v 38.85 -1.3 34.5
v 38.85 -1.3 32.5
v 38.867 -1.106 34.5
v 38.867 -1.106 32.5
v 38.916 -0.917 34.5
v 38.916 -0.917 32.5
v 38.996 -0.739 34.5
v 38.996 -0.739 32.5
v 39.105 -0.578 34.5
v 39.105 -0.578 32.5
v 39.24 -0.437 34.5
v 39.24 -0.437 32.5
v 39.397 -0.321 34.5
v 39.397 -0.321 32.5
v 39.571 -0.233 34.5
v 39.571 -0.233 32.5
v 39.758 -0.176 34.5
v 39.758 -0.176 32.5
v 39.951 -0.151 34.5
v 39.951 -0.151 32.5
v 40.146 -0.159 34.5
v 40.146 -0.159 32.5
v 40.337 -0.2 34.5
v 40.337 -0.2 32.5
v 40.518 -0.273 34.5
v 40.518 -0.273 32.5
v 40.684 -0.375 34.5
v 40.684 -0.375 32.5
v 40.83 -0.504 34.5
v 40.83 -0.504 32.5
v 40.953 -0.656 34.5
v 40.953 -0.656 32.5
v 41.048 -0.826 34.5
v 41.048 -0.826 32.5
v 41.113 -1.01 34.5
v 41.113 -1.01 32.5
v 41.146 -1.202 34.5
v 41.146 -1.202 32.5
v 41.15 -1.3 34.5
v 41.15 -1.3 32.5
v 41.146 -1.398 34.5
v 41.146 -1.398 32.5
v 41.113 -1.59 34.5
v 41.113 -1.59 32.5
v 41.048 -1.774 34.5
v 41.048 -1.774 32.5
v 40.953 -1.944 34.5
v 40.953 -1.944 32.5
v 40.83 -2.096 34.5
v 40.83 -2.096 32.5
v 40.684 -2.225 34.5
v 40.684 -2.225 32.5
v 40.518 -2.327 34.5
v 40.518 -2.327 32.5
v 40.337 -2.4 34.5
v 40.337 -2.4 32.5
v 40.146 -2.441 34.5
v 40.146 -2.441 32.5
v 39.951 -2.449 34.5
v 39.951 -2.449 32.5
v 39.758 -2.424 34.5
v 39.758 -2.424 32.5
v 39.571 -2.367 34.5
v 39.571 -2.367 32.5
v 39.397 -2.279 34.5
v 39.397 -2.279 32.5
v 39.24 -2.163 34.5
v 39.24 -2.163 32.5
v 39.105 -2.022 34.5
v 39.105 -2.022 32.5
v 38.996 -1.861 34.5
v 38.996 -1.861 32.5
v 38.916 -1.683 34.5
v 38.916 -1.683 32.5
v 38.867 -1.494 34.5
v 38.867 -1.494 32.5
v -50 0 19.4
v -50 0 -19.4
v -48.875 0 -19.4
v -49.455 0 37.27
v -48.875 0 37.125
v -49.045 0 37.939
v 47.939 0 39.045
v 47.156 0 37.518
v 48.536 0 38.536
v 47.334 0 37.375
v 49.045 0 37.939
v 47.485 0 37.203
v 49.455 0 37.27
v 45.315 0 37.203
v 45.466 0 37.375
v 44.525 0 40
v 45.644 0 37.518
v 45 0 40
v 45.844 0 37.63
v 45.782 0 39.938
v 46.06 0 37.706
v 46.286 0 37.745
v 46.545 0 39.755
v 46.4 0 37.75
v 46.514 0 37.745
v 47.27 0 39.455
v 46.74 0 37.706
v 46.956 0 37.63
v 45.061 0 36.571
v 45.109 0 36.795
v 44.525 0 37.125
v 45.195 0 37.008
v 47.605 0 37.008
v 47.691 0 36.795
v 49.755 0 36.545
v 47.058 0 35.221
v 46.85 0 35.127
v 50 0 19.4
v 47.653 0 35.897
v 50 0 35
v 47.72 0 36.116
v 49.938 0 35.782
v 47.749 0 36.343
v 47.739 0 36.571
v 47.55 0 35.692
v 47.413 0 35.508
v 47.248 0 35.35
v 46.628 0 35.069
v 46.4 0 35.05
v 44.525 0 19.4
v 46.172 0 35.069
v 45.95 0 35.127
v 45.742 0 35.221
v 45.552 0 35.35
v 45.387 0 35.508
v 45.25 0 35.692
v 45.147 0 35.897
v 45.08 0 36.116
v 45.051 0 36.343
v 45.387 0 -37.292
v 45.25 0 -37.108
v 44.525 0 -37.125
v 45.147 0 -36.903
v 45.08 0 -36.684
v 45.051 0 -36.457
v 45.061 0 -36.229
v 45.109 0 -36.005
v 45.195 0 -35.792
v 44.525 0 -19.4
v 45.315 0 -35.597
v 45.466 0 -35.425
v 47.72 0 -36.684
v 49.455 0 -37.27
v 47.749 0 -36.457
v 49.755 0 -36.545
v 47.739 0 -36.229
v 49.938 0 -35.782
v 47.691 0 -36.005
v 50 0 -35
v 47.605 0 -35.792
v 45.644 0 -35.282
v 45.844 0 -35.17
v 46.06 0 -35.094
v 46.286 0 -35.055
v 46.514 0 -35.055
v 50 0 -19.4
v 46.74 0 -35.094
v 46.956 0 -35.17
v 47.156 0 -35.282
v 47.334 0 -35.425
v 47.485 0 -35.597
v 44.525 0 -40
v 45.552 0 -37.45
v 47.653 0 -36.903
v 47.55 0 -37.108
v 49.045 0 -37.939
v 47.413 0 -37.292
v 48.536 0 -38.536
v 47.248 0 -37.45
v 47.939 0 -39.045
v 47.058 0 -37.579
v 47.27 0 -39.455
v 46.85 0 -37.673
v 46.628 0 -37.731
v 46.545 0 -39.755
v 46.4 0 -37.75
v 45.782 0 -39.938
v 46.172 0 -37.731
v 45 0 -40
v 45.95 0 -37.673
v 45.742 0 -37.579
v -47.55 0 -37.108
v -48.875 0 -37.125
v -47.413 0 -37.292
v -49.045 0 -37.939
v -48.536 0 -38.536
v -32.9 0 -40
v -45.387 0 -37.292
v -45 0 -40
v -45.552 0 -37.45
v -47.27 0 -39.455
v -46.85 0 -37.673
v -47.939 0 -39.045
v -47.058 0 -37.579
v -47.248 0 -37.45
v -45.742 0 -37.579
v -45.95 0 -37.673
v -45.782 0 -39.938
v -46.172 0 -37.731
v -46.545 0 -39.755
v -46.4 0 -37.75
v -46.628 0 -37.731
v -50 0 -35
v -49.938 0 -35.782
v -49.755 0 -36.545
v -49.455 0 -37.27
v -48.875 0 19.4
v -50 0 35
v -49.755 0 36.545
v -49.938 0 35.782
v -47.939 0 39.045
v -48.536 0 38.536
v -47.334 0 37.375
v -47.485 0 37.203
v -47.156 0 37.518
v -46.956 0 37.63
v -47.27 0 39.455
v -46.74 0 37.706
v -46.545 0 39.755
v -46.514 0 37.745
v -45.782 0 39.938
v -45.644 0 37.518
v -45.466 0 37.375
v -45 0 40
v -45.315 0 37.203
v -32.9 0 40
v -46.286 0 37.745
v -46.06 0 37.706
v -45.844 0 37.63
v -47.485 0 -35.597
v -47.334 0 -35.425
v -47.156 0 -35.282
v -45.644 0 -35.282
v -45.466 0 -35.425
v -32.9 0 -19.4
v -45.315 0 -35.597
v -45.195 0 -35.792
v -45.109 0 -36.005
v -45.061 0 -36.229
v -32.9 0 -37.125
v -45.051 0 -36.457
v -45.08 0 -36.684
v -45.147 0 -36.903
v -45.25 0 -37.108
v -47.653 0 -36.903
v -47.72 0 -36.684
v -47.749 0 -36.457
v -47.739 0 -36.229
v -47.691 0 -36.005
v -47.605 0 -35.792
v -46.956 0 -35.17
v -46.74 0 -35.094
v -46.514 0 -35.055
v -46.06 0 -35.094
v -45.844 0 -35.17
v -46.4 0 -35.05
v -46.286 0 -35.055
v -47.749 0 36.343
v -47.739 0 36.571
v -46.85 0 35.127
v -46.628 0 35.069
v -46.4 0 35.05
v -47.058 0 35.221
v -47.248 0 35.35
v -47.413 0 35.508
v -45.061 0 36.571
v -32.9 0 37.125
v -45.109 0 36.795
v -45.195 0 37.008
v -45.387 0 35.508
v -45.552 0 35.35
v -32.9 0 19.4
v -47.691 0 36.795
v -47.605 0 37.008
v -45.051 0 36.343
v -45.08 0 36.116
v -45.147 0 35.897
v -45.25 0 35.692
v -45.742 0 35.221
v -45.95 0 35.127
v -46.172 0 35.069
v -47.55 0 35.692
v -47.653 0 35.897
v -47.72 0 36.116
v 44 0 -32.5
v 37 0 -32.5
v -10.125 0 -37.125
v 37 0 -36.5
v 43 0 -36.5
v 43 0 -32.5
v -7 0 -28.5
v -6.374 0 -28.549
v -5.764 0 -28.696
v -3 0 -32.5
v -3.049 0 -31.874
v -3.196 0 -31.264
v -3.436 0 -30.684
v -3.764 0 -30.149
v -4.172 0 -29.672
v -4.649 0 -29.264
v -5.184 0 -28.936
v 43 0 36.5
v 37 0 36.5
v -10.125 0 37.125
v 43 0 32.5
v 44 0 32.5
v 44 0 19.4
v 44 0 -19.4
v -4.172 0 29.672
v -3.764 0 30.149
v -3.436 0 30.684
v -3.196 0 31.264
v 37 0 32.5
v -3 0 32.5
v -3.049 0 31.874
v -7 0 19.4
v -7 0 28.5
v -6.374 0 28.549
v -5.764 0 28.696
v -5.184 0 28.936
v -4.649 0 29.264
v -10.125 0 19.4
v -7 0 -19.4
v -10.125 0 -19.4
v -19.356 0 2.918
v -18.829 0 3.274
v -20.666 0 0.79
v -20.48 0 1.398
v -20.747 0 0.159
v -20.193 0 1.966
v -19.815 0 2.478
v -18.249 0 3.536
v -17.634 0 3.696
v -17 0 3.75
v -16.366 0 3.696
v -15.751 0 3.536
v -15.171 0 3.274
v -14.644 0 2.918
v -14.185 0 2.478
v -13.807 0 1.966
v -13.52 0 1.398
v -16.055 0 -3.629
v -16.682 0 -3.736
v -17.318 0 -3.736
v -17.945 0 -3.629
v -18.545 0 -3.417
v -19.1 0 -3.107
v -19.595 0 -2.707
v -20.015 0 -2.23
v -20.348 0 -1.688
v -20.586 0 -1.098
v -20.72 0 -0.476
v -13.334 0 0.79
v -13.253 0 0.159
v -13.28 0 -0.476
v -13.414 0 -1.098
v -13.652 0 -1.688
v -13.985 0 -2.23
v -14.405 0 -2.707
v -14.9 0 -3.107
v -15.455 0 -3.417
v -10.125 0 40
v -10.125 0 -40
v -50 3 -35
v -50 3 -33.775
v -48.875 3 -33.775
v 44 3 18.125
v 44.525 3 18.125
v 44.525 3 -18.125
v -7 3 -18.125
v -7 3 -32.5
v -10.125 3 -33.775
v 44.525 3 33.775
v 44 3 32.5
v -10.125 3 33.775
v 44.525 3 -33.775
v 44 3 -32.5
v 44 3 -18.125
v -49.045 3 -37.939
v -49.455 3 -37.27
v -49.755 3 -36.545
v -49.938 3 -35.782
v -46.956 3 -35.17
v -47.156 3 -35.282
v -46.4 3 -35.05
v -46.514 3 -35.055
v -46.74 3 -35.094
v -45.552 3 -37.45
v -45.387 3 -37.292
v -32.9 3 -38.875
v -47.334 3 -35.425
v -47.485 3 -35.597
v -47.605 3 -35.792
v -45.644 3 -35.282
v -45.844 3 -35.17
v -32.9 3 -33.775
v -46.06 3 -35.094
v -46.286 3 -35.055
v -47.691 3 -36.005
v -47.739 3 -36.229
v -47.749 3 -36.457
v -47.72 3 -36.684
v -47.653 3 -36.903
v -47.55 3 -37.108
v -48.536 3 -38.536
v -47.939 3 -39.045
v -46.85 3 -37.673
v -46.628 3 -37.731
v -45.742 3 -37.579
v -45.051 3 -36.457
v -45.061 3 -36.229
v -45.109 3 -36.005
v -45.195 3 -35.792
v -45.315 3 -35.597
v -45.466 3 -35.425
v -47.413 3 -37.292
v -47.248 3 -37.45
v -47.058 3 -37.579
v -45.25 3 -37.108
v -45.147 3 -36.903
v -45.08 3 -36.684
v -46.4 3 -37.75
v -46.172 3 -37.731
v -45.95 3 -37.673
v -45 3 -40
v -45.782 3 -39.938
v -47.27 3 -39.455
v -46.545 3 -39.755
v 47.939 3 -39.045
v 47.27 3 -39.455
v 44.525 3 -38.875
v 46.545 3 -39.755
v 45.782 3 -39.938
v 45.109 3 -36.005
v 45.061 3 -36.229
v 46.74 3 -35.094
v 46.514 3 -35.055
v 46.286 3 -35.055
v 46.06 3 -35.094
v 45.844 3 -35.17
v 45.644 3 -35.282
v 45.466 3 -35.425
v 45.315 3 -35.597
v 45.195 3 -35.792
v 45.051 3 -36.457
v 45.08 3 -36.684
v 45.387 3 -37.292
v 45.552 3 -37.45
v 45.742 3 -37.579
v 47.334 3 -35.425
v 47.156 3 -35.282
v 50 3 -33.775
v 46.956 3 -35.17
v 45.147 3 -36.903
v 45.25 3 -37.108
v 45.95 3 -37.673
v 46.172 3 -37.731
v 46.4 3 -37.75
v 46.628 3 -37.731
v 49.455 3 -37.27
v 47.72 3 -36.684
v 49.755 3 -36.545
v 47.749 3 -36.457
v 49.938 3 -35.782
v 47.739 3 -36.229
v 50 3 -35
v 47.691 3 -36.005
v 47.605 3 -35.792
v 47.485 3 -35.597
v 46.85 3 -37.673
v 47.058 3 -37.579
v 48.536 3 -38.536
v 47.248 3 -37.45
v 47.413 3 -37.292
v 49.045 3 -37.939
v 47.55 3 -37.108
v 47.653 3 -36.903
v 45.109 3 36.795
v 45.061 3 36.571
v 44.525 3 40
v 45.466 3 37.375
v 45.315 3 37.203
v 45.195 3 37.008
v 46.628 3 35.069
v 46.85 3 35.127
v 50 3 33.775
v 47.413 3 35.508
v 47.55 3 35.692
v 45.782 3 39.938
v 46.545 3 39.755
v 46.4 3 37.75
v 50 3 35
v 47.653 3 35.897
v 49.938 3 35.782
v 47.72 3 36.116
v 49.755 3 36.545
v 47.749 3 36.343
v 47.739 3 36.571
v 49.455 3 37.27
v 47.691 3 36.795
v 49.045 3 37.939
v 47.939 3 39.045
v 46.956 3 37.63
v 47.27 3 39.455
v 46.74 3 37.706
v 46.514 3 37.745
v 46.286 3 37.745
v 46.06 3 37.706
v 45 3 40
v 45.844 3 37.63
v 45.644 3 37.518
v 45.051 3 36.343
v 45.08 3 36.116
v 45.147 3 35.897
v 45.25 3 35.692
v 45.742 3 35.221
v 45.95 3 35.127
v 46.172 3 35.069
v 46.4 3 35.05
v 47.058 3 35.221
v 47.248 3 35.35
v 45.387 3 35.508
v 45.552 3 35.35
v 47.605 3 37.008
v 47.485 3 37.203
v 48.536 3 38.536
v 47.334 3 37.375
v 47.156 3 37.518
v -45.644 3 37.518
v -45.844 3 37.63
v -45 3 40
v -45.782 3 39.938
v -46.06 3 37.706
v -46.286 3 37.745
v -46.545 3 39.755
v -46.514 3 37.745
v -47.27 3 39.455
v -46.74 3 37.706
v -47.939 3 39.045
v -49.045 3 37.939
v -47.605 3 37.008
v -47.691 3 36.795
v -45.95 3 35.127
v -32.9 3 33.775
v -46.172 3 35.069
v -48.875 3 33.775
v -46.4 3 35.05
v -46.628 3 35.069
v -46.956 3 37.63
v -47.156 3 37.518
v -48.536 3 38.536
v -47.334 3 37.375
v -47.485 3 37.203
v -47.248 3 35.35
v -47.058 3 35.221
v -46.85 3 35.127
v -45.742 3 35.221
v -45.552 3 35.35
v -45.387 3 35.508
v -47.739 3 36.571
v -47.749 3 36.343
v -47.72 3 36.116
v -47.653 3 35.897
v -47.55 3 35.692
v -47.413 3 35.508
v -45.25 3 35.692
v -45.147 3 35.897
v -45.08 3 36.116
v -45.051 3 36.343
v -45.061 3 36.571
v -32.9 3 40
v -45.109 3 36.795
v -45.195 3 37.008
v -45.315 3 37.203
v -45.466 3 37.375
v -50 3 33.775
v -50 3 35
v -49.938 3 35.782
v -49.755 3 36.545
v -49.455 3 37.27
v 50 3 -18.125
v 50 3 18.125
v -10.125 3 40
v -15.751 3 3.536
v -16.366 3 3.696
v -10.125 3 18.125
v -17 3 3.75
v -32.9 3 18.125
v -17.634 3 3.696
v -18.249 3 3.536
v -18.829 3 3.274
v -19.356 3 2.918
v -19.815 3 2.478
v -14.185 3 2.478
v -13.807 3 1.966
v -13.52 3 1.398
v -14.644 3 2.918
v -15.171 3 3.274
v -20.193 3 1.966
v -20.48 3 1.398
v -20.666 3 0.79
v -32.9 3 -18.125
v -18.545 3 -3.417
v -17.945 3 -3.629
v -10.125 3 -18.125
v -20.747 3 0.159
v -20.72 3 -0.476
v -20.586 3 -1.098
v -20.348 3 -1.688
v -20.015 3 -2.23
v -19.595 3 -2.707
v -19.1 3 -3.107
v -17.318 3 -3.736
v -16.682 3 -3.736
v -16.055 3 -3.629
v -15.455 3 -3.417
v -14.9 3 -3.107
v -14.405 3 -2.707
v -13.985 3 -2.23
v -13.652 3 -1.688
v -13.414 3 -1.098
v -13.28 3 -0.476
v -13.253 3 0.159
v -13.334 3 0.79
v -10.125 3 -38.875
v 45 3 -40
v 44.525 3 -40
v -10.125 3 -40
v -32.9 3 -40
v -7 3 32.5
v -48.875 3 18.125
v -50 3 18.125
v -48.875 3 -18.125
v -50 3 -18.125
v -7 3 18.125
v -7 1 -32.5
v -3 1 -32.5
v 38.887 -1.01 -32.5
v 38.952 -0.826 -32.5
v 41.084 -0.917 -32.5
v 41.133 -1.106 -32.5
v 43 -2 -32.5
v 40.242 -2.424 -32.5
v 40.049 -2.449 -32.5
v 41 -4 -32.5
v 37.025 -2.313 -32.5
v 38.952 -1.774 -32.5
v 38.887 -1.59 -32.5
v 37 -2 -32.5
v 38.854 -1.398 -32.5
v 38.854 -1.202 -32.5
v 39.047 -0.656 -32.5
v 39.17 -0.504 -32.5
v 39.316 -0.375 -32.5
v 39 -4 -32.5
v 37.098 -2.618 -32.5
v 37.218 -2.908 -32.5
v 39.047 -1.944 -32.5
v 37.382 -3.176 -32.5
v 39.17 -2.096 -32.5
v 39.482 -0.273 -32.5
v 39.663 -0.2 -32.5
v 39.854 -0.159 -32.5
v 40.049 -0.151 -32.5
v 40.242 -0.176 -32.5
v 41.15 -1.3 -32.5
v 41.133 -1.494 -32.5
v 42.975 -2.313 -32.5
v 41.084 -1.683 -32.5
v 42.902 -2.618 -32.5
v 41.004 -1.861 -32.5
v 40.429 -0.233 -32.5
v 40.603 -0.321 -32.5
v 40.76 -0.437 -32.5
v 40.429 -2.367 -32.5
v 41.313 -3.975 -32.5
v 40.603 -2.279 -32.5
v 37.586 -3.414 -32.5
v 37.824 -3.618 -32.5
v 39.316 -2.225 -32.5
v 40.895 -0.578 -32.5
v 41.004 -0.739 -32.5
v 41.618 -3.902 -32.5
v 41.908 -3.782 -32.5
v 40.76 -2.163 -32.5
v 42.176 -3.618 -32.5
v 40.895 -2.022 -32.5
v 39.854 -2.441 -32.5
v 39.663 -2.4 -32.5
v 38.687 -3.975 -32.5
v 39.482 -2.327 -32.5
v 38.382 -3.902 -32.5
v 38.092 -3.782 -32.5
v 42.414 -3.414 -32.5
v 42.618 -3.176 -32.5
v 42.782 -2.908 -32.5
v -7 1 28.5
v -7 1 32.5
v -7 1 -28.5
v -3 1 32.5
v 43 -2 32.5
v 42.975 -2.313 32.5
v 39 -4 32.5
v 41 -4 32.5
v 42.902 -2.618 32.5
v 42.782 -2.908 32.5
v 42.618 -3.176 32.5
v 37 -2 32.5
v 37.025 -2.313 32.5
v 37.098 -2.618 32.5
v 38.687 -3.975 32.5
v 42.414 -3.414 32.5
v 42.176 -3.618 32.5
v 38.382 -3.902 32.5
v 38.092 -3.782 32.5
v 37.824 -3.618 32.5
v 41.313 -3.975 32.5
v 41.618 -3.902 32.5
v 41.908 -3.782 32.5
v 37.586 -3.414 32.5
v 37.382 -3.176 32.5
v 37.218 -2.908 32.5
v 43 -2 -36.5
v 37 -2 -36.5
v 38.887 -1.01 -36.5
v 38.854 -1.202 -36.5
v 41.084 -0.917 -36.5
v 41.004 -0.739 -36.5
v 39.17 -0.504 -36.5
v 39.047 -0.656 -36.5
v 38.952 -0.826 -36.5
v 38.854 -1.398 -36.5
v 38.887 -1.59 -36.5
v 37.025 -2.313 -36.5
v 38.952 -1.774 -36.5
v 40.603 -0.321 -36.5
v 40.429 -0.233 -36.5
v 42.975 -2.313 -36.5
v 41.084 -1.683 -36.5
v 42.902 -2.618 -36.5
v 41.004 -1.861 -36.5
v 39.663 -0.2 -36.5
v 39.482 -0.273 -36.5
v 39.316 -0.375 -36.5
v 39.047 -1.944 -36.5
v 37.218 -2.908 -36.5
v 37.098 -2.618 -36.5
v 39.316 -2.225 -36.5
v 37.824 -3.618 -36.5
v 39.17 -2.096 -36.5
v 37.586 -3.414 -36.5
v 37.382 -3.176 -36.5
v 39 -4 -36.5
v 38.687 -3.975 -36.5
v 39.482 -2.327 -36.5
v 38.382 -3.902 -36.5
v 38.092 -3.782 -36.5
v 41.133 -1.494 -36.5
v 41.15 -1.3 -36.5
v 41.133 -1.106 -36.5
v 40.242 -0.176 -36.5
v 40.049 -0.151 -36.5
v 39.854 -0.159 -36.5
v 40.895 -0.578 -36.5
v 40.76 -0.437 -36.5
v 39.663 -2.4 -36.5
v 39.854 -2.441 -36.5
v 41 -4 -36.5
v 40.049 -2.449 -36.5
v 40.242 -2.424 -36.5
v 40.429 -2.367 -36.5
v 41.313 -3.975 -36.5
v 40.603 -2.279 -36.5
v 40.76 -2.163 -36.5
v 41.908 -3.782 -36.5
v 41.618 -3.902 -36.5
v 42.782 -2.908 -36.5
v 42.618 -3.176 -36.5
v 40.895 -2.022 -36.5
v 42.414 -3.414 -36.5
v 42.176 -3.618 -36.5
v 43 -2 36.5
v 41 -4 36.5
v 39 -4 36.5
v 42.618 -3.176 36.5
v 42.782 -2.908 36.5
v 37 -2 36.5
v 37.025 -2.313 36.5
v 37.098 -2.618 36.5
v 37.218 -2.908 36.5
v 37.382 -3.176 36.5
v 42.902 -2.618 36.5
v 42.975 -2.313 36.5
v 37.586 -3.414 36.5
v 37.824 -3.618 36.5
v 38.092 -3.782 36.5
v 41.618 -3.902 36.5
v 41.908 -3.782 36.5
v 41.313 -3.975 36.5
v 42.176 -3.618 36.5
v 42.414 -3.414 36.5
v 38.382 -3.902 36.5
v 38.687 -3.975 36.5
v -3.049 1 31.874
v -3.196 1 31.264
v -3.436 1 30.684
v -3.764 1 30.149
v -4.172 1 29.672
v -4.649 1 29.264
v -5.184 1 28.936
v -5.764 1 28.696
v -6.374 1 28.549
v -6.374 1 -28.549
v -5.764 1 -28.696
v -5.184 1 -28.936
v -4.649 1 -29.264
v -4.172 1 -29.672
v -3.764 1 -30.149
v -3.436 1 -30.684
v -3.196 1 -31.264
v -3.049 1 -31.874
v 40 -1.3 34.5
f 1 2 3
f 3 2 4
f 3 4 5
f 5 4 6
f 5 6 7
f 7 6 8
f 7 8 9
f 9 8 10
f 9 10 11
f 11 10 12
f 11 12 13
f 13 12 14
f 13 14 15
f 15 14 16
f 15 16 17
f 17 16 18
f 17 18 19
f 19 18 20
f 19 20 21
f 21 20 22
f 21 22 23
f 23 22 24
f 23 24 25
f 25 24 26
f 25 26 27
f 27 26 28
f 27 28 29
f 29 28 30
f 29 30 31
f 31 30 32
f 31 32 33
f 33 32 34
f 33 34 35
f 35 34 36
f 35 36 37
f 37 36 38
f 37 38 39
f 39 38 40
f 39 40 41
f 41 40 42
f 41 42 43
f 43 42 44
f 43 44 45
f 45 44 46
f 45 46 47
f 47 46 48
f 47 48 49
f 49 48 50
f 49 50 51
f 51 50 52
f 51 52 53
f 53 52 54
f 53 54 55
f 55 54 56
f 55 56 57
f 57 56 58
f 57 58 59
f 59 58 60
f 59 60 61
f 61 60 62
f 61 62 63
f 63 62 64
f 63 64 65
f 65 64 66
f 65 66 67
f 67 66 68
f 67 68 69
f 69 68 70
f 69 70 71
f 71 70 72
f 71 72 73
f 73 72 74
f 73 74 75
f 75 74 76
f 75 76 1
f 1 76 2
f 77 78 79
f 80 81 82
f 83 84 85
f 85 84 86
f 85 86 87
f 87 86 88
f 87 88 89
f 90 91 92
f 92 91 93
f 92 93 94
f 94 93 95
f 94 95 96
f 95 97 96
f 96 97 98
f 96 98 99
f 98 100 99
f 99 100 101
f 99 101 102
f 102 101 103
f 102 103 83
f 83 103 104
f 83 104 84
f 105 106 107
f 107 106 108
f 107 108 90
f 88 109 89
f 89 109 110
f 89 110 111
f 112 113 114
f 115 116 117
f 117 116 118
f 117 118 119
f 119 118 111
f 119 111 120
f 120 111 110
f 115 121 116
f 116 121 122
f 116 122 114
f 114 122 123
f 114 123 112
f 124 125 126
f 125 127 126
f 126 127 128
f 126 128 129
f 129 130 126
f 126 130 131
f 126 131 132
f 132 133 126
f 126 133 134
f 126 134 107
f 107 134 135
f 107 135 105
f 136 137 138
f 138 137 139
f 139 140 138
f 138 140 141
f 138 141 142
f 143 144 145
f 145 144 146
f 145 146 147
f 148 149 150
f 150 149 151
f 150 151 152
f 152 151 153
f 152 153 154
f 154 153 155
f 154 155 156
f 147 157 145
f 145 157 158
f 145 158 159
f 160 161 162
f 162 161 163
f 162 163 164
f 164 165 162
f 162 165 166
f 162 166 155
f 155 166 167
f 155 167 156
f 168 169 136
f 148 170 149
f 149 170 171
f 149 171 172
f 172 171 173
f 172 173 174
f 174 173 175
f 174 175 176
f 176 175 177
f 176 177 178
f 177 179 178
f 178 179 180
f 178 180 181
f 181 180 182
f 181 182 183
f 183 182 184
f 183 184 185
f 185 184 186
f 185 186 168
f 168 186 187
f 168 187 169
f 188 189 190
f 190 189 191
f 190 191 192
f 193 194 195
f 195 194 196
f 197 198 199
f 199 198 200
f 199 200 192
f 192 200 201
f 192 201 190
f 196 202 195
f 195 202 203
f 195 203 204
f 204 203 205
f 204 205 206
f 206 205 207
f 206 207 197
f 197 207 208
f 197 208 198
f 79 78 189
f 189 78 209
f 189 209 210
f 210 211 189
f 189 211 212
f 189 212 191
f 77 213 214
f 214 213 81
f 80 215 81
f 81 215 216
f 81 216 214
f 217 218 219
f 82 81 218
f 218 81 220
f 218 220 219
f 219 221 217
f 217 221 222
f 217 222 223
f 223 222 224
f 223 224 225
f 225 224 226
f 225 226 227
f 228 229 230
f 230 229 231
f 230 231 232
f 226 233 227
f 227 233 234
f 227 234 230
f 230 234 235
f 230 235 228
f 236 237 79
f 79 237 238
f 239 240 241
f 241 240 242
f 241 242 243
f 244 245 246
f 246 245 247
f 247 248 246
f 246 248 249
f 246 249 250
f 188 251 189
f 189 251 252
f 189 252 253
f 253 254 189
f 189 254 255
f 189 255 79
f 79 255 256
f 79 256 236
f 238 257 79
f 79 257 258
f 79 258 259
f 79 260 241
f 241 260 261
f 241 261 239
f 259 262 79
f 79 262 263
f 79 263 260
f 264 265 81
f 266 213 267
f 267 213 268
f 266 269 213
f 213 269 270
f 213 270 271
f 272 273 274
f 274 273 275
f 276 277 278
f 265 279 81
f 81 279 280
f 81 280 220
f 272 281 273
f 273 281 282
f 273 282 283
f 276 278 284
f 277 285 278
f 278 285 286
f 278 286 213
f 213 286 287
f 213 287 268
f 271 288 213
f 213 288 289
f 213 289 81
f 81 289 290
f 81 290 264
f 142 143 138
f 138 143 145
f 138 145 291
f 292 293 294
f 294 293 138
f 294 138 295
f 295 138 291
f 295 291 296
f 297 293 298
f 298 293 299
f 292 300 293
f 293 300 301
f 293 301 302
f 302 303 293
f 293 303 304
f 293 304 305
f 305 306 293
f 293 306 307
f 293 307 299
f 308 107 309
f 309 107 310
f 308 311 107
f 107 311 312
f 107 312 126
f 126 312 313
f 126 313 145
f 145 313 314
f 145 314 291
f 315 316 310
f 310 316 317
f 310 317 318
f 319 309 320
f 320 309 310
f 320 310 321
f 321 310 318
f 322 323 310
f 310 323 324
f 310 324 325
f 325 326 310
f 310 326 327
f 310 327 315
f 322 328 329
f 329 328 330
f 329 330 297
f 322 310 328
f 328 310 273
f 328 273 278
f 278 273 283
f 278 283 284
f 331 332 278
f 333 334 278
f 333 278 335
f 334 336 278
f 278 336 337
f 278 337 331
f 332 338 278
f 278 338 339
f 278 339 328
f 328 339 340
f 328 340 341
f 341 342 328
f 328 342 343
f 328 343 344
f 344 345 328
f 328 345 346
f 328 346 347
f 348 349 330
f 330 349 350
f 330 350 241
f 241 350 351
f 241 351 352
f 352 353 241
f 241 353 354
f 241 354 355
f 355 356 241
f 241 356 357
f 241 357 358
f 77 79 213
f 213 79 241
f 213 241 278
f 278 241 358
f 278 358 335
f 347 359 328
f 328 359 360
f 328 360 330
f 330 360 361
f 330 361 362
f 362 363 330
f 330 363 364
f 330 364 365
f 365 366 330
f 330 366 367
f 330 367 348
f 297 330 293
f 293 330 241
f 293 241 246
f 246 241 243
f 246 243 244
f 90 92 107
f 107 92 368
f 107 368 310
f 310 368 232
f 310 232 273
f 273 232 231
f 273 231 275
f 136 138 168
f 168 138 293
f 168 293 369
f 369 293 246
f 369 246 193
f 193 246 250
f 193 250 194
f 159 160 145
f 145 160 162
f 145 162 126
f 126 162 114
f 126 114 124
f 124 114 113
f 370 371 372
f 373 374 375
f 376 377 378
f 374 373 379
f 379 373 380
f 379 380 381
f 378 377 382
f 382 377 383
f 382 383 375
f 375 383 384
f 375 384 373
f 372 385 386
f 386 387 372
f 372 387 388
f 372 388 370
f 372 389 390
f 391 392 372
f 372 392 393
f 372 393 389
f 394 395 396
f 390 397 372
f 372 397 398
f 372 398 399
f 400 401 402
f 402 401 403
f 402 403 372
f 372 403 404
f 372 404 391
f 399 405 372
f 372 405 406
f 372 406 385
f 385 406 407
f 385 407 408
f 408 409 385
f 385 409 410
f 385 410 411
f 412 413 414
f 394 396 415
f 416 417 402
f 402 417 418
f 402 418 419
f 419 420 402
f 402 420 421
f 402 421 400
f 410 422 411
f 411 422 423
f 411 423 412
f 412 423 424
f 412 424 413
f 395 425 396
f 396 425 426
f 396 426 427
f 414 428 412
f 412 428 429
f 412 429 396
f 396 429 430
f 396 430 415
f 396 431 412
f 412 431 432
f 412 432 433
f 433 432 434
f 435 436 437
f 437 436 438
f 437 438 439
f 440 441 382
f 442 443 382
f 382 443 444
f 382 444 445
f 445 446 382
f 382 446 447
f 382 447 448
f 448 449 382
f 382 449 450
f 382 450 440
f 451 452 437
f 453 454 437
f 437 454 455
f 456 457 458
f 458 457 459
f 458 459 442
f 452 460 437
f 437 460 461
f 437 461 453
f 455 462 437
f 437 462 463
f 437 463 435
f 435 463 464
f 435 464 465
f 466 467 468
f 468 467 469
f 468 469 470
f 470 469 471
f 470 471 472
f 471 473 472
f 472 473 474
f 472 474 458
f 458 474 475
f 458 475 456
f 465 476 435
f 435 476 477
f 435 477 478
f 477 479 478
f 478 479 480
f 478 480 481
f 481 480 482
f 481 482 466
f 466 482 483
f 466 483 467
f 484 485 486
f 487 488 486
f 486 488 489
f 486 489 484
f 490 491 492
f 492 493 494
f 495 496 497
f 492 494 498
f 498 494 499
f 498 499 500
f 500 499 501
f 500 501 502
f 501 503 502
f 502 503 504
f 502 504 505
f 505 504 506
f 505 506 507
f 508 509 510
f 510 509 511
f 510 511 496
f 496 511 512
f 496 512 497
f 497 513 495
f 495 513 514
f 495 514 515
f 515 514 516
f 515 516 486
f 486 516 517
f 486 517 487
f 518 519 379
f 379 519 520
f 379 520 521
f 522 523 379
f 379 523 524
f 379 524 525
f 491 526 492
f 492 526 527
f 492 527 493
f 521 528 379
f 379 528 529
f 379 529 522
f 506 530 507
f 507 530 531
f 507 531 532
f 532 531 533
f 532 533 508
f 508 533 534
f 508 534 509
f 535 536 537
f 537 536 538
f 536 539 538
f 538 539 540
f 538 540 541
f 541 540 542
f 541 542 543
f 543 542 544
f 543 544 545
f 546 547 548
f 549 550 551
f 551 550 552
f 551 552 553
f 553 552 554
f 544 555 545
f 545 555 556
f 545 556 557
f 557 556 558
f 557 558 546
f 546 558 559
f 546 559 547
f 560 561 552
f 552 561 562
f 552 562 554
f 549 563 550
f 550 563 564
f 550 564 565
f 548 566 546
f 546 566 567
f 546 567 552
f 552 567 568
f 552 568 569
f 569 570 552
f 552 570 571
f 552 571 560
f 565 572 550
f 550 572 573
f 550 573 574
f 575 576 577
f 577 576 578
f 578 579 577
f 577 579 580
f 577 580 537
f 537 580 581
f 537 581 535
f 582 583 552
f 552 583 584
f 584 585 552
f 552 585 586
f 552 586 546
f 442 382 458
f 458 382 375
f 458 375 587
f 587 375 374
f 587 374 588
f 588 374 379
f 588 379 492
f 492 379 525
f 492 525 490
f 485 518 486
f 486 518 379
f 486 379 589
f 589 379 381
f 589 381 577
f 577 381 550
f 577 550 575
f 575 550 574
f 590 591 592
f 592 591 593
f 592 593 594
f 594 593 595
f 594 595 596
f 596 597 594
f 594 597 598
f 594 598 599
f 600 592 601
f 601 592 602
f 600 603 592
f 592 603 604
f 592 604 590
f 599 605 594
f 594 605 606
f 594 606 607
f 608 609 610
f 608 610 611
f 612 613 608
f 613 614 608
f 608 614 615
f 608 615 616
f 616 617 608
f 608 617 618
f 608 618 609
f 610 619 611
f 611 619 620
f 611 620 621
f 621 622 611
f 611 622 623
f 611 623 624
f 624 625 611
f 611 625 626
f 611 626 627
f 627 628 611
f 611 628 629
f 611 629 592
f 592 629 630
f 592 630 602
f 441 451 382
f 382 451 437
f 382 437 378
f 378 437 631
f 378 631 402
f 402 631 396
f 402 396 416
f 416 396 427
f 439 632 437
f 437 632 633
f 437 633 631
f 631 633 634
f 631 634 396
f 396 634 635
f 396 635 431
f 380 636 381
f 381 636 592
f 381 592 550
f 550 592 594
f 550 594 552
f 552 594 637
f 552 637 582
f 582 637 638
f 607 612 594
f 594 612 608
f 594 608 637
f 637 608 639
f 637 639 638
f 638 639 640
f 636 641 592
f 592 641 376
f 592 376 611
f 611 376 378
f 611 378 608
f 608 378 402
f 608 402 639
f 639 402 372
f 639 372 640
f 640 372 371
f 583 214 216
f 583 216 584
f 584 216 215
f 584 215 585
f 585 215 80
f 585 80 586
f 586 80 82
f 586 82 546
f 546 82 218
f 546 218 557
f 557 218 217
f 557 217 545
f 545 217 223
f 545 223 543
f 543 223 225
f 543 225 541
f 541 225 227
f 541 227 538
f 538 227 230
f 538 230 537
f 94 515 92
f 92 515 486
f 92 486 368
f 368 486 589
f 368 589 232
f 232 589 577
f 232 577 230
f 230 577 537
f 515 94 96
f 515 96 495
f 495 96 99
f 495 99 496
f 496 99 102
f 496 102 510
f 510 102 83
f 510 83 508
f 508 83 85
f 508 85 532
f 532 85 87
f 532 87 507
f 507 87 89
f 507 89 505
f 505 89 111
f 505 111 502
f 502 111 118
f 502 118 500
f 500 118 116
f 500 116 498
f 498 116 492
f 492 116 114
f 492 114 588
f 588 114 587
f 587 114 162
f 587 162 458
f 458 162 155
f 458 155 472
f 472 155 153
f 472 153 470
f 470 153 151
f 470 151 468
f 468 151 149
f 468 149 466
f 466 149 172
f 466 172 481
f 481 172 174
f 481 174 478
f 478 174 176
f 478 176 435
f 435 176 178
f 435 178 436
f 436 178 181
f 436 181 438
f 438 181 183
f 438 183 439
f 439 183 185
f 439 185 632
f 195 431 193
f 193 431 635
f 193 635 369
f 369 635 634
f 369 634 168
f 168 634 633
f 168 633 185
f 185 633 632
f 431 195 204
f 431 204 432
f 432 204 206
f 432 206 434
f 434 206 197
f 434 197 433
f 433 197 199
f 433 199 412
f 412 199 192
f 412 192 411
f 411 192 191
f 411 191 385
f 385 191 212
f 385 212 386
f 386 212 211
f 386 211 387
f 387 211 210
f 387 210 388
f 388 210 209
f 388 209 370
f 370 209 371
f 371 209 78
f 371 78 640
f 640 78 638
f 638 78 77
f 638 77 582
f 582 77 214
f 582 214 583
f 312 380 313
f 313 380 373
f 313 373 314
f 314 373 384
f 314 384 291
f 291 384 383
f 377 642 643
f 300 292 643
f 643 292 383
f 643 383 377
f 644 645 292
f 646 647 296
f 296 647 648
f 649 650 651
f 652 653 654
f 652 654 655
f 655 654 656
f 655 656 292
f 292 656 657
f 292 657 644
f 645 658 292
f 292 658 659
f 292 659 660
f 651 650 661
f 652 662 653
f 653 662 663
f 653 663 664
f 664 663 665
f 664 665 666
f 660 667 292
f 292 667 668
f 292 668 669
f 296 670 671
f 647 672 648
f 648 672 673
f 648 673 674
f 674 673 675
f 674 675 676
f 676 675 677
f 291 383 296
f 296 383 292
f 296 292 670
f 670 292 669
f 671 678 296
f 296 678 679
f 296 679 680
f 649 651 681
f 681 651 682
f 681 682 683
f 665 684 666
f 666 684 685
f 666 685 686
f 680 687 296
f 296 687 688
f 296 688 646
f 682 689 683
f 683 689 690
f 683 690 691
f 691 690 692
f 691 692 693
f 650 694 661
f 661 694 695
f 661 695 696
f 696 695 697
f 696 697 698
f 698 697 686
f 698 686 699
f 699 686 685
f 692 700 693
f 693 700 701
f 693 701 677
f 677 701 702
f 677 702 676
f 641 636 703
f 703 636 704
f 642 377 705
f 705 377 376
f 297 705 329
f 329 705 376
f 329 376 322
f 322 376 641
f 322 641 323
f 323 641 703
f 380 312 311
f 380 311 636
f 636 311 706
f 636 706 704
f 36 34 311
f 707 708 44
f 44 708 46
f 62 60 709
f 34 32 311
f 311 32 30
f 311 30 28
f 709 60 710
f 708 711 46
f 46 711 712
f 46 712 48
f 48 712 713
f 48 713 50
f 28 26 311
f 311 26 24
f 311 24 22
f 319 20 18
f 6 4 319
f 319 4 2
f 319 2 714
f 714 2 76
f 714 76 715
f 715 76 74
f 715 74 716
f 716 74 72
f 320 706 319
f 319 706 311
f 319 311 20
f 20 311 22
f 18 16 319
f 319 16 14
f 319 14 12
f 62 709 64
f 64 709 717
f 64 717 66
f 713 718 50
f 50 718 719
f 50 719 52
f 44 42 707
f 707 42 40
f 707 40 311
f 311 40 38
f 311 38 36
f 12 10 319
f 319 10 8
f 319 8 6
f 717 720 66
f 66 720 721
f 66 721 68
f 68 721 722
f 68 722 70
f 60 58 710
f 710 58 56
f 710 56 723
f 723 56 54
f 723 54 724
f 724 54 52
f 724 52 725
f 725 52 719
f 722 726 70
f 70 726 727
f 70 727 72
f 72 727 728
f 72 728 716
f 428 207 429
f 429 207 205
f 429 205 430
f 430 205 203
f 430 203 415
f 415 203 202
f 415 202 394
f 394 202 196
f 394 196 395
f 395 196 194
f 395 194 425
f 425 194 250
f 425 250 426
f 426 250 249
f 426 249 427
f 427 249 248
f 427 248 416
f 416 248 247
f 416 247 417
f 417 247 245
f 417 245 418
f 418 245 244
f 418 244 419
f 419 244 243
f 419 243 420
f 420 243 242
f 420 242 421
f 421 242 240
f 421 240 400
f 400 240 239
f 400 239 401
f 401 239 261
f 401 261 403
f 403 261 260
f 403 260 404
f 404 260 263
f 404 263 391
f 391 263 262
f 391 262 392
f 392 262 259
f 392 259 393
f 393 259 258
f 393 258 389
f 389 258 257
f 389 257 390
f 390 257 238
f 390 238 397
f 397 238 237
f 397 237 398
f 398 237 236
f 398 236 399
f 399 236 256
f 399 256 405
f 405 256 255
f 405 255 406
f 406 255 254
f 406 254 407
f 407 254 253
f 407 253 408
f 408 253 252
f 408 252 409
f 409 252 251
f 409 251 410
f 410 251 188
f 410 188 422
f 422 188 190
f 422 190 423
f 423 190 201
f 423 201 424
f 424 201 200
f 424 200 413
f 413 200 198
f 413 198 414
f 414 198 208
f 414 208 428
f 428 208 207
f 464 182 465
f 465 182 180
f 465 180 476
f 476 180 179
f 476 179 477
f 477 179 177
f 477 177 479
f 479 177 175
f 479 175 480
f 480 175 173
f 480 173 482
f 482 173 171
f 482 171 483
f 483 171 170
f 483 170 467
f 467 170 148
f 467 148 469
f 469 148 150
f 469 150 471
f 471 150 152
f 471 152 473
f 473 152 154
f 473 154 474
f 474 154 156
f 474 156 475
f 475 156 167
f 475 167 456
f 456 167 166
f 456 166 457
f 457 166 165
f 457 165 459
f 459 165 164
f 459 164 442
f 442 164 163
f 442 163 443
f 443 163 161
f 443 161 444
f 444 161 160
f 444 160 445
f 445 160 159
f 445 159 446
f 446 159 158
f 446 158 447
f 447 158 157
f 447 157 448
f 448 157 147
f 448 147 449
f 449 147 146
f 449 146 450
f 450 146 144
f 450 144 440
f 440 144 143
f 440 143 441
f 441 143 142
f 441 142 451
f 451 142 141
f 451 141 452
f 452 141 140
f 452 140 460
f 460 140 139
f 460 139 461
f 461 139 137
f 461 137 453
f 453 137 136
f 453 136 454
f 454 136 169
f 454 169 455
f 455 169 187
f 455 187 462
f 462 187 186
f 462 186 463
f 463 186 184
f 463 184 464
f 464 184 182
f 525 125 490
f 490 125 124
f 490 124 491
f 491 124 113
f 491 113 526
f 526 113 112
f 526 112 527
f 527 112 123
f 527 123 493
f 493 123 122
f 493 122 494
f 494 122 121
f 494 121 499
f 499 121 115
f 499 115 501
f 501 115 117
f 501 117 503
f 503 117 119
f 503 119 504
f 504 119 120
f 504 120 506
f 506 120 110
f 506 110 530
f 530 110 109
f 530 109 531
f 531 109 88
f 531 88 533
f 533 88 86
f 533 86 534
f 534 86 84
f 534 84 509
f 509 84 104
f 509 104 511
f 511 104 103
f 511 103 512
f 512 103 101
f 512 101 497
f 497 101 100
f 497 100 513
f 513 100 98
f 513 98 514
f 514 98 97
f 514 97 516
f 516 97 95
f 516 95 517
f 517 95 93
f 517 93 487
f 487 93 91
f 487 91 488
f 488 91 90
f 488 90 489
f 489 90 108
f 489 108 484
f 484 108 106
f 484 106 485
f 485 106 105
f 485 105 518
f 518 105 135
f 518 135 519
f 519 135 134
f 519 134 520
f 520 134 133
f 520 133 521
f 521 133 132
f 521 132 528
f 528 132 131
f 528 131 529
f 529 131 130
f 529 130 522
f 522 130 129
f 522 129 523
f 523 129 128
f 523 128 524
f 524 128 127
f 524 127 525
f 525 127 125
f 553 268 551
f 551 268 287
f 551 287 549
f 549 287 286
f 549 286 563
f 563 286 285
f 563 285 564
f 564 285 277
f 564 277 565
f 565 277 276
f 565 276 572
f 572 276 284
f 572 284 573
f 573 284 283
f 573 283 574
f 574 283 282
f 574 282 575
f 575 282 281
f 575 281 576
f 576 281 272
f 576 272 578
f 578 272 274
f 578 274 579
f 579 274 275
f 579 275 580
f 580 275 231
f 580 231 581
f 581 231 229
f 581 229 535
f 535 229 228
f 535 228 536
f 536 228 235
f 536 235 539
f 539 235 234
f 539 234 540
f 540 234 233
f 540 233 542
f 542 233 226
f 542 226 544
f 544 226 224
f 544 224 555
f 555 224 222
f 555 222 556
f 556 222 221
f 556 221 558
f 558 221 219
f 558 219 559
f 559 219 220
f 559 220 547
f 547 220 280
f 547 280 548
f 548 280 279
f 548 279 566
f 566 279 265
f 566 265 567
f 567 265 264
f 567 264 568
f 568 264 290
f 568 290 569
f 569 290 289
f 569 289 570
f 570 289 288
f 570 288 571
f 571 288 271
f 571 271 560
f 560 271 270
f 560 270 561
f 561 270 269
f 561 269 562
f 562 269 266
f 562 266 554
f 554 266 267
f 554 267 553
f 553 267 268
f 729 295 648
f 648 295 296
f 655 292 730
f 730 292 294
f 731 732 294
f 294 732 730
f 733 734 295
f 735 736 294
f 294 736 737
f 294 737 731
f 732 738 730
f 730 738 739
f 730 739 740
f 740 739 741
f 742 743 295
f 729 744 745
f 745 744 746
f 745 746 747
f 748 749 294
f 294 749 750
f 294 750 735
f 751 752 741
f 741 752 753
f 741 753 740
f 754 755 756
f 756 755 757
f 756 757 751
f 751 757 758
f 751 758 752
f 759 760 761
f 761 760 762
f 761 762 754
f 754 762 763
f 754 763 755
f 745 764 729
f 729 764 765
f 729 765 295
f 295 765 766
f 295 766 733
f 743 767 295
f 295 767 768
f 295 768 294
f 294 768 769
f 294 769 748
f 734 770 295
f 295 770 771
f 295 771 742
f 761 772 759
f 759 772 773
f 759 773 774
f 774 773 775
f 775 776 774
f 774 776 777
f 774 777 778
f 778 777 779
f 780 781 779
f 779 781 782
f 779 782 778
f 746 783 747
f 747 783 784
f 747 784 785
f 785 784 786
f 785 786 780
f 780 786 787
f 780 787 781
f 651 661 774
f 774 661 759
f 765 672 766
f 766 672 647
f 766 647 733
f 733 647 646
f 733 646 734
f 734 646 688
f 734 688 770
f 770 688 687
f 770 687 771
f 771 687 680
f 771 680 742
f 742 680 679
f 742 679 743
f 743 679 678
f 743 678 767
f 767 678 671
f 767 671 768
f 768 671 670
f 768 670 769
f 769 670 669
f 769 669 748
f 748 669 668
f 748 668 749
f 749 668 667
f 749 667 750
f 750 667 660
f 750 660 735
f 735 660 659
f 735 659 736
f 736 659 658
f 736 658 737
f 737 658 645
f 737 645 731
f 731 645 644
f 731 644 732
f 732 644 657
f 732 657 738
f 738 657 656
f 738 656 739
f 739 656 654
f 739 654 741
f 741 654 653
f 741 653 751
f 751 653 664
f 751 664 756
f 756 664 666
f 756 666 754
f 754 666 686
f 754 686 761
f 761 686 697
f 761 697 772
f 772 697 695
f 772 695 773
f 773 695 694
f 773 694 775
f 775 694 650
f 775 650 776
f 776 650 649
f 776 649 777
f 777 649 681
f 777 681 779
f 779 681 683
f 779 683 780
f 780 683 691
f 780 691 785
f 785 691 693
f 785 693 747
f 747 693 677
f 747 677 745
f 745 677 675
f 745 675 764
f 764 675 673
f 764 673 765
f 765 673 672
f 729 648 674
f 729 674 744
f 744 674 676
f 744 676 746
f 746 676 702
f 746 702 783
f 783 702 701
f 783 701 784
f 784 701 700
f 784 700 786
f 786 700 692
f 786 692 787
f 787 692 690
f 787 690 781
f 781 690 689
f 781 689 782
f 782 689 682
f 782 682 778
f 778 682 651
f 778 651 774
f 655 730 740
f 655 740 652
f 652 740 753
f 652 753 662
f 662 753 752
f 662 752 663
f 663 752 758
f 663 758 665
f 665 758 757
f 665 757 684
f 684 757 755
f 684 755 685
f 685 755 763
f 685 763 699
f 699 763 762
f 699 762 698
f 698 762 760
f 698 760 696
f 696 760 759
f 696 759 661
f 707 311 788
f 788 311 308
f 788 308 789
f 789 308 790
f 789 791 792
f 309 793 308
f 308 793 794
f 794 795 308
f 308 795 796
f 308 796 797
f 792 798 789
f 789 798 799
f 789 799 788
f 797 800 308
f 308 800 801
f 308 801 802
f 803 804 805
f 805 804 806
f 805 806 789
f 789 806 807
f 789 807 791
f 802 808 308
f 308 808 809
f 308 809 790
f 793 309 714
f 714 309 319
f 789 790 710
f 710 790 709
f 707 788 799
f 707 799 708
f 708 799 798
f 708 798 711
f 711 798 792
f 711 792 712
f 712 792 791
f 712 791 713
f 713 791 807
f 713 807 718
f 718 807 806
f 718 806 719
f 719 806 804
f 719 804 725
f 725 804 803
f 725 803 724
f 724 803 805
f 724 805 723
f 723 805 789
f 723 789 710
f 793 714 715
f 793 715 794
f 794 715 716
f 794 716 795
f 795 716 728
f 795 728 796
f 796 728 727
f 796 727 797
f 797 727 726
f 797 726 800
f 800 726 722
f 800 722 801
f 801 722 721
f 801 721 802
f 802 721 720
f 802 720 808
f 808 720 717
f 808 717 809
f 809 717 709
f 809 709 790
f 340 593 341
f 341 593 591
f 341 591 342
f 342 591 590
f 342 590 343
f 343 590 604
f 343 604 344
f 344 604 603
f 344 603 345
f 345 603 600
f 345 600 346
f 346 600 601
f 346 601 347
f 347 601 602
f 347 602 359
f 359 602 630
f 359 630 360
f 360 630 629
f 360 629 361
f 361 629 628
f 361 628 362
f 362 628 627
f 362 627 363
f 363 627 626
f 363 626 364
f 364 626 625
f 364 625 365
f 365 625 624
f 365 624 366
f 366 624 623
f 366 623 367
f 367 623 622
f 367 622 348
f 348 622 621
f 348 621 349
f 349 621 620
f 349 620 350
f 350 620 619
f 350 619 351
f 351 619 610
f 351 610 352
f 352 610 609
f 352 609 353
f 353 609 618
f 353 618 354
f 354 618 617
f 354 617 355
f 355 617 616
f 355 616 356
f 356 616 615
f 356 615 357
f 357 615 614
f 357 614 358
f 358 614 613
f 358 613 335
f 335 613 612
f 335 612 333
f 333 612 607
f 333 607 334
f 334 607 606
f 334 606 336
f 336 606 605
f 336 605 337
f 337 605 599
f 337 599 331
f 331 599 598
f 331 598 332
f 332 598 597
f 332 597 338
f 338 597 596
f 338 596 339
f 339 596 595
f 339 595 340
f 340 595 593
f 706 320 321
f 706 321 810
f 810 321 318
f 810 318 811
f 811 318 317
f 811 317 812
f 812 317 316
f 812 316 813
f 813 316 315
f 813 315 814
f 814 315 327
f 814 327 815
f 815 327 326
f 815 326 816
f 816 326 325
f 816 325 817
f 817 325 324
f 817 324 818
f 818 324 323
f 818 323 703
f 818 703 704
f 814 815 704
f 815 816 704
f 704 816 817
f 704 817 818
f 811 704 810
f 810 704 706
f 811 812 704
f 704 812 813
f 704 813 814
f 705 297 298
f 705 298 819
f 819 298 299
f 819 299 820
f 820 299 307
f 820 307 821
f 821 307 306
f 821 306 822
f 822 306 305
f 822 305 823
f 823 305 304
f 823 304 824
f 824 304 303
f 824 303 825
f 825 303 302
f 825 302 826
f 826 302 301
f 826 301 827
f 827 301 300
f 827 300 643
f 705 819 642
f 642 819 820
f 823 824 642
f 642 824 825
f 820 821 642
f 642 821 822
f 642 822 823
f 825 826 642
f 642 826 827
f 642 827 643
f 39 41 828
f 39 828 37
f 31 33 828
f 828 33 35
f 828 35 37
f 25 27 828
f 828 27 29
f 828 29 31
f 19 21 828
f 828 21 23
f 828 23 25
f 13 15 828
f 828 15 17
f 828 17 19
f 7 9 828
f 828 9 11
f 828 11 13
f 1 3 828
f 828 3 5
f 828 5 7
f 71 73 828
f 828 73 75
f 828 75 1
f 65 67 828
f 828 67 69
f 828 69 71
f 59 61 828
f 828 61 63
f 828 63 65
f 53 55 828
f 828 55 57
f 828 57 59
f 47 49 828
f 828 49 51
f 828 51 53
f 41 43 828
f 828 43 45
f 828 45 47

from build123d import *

# Parameters (mm, degrees)
SKETCH_1_R             = 1.35
SKETCH_1_W             = 51
SKETCH_1_H             = 65
EXTRUDE_1_DEPTH        = 3
SKETCH_2_W             = 6
SKETCH_2_H             = 4
EXTRUDE_2_DEPTH        = 4
SKETCH_4_R             = 1.15
CUT_EXTRUDE_2_DEPTH    = 4
FILLET_2_R             = 2
FILLET_2_OF_MIRROR_1_R = 2
SKETCH_5_R             = 3.75
CUT_EXTRUDE_3_DEPTH    = 3
EXTRUDE_3_DEPTH        = 1
SKETCH_7_R             = 1.15
EXTRUDE_4_DEPTH        = 2


with BuildPart() as part:
    # 草图1 → 凸台-拉伸1 (new body)
    with BuildSketch(Plane(origin=(0, 0, 0), x_dir=(1, 0, 0), z_dir=(0, 1, 0))):
        with BuildLine():
            Line((-45, 40), (45, 40))
            ThreePointArc((45, 40), (48.535533906, 38.535533906), (50, 35))
            Line((50, 35), (50, -35))
            ThreePointArc((50, -35), (48.535533906, -38.535533906), (45, -40))
            Line((45, -40), (-45, -40))
            ThreePointArc((-45, -40), (-48.535533906, -38.535533906), (-50, -35))
            Line((-50, -35), (-50, 35))
            ThreePointArc((-50, 35), (-48.535533906, 38.535533906), (-45, 40))
        make_face()
        with Locations((-46.4, 36.4)):
            Circle(SKETCH_1_R, mode=Mode.SUBTRACT)
        with Locations((46.4, 36.4)):
            Circle(SKETCH_1_R, mode=Mode.SUBTRACT)
        with Locations((46.4, -36.4)):
            Circle(SKETCH_1_R, mode=Mode.SUBTRACT)
        with Locations((-46.4, -36.4)):
            Circle(SKETCH_1_R, mode=Mode.SUBTRACT)
        with Locations((18.5, 0)):
            Rectangle(SKETCH_1_W, SKETCH_1_H, mode=Mode.SUBTRACT)
    extrude(amount=EXTRUDE_1_DEPTH)

    # 草图2 → 凸台-拉伸2 (add)
    with BuildSketch(Plane(origin=(0, 0, 0), x_dir=(-1, 0, 0), z_dir=(0, -1, 0))):
        with Locations((-40, 34.5)):
            Rectangle(SKETCH_2_W, SKETCH_2_H)
    extrude_2 = extrude(amount=EXTRUDE_2_DEPTH)

    # 草图4 → 切除-拉伸2 (cut)
    with BuildSketch(Plane.XY.offset(-32.5)):
        with Locations((40, -1.3)):
            Circle(SKETCH_4_R)
    cut_extrude_2 = extrude(amount=-CUT_EXTRUDE_2_DEPTH, mode=Mode.SUBTRACT)

    # 圆角2
    fillet_2_edges = [part.edges().sort_by_distance(p)[0] for p in [
        (43, -4, -34.5),
        (37, -4, -34.5),
    ]]
    fillet(fillet_2_edges, radius=FILLET_2_R)

    # 镜向1: 凸台-拉伸2, 切除-拉伸2 across plane
    add(extrude_2.mirror(Plane.XY))
    add(cut_extrude_2.mirror(Plane.XY), mode=Mode.SUBTRACT)

    # 圆角2 of 镜向1
    fillet_2_of_mirror_1_edges = [part.edges().sort_by_distance(p)[0] for p in [
        (43, -4, 34.5),
        (37, -4, 34.5),
    ]]
    fillet(fillet_2_of_mirror_1_edges, radius=FILLET_2_OF_MIRROR_1_R)

    # 草图5 → 切除-拉伸3 (cut)
    with BuildSketch(Plane(origin=(0, 3, 0), x_dir=(1, 0, 0), z_dir=(0, 1, 0))):
        with Locations((-17, 0)):
            Circle(SKETCH_5_R)
    extrude(amount=-CUT_EXTRUDE_3_DEPTH, mode=Mode.SUBTRACT)

    # 草图6 → 凸台-拉伸3 (add)
    with BuildSketch(Plane.XZ):
        with BuildLine():
            Line((-7, -28.5), (-7, -32.5))
            Line((-7, -32.5), (-3, -32.5))
            ThreePointArc((-3, -32.5), (-4.171572875, -29.671572875), (-7, -28.5))
        make_face()
        with BuildLine():
            Line((-7, 28.5), (-7, 32.5))
            Line((-7, 32.5), (-3, 32.5))
            ThreePointArc((-3, 32.5), (-4.171572875, 29.671572875), (-7, 28.5))
        make_face()
    extrude(amount=-EXTRUDE_3_DEPTH)

    # 草图7 → 凸台-拉伸4 (add)
    with BuildSketch(Plane.XY.offset(36.5)):
        with Locations((40, -1.3)):
            Circle(SKETCH_7_R)
    extrude(amount=-EXTRUDE_4_DEPTH)


solid = part.part
